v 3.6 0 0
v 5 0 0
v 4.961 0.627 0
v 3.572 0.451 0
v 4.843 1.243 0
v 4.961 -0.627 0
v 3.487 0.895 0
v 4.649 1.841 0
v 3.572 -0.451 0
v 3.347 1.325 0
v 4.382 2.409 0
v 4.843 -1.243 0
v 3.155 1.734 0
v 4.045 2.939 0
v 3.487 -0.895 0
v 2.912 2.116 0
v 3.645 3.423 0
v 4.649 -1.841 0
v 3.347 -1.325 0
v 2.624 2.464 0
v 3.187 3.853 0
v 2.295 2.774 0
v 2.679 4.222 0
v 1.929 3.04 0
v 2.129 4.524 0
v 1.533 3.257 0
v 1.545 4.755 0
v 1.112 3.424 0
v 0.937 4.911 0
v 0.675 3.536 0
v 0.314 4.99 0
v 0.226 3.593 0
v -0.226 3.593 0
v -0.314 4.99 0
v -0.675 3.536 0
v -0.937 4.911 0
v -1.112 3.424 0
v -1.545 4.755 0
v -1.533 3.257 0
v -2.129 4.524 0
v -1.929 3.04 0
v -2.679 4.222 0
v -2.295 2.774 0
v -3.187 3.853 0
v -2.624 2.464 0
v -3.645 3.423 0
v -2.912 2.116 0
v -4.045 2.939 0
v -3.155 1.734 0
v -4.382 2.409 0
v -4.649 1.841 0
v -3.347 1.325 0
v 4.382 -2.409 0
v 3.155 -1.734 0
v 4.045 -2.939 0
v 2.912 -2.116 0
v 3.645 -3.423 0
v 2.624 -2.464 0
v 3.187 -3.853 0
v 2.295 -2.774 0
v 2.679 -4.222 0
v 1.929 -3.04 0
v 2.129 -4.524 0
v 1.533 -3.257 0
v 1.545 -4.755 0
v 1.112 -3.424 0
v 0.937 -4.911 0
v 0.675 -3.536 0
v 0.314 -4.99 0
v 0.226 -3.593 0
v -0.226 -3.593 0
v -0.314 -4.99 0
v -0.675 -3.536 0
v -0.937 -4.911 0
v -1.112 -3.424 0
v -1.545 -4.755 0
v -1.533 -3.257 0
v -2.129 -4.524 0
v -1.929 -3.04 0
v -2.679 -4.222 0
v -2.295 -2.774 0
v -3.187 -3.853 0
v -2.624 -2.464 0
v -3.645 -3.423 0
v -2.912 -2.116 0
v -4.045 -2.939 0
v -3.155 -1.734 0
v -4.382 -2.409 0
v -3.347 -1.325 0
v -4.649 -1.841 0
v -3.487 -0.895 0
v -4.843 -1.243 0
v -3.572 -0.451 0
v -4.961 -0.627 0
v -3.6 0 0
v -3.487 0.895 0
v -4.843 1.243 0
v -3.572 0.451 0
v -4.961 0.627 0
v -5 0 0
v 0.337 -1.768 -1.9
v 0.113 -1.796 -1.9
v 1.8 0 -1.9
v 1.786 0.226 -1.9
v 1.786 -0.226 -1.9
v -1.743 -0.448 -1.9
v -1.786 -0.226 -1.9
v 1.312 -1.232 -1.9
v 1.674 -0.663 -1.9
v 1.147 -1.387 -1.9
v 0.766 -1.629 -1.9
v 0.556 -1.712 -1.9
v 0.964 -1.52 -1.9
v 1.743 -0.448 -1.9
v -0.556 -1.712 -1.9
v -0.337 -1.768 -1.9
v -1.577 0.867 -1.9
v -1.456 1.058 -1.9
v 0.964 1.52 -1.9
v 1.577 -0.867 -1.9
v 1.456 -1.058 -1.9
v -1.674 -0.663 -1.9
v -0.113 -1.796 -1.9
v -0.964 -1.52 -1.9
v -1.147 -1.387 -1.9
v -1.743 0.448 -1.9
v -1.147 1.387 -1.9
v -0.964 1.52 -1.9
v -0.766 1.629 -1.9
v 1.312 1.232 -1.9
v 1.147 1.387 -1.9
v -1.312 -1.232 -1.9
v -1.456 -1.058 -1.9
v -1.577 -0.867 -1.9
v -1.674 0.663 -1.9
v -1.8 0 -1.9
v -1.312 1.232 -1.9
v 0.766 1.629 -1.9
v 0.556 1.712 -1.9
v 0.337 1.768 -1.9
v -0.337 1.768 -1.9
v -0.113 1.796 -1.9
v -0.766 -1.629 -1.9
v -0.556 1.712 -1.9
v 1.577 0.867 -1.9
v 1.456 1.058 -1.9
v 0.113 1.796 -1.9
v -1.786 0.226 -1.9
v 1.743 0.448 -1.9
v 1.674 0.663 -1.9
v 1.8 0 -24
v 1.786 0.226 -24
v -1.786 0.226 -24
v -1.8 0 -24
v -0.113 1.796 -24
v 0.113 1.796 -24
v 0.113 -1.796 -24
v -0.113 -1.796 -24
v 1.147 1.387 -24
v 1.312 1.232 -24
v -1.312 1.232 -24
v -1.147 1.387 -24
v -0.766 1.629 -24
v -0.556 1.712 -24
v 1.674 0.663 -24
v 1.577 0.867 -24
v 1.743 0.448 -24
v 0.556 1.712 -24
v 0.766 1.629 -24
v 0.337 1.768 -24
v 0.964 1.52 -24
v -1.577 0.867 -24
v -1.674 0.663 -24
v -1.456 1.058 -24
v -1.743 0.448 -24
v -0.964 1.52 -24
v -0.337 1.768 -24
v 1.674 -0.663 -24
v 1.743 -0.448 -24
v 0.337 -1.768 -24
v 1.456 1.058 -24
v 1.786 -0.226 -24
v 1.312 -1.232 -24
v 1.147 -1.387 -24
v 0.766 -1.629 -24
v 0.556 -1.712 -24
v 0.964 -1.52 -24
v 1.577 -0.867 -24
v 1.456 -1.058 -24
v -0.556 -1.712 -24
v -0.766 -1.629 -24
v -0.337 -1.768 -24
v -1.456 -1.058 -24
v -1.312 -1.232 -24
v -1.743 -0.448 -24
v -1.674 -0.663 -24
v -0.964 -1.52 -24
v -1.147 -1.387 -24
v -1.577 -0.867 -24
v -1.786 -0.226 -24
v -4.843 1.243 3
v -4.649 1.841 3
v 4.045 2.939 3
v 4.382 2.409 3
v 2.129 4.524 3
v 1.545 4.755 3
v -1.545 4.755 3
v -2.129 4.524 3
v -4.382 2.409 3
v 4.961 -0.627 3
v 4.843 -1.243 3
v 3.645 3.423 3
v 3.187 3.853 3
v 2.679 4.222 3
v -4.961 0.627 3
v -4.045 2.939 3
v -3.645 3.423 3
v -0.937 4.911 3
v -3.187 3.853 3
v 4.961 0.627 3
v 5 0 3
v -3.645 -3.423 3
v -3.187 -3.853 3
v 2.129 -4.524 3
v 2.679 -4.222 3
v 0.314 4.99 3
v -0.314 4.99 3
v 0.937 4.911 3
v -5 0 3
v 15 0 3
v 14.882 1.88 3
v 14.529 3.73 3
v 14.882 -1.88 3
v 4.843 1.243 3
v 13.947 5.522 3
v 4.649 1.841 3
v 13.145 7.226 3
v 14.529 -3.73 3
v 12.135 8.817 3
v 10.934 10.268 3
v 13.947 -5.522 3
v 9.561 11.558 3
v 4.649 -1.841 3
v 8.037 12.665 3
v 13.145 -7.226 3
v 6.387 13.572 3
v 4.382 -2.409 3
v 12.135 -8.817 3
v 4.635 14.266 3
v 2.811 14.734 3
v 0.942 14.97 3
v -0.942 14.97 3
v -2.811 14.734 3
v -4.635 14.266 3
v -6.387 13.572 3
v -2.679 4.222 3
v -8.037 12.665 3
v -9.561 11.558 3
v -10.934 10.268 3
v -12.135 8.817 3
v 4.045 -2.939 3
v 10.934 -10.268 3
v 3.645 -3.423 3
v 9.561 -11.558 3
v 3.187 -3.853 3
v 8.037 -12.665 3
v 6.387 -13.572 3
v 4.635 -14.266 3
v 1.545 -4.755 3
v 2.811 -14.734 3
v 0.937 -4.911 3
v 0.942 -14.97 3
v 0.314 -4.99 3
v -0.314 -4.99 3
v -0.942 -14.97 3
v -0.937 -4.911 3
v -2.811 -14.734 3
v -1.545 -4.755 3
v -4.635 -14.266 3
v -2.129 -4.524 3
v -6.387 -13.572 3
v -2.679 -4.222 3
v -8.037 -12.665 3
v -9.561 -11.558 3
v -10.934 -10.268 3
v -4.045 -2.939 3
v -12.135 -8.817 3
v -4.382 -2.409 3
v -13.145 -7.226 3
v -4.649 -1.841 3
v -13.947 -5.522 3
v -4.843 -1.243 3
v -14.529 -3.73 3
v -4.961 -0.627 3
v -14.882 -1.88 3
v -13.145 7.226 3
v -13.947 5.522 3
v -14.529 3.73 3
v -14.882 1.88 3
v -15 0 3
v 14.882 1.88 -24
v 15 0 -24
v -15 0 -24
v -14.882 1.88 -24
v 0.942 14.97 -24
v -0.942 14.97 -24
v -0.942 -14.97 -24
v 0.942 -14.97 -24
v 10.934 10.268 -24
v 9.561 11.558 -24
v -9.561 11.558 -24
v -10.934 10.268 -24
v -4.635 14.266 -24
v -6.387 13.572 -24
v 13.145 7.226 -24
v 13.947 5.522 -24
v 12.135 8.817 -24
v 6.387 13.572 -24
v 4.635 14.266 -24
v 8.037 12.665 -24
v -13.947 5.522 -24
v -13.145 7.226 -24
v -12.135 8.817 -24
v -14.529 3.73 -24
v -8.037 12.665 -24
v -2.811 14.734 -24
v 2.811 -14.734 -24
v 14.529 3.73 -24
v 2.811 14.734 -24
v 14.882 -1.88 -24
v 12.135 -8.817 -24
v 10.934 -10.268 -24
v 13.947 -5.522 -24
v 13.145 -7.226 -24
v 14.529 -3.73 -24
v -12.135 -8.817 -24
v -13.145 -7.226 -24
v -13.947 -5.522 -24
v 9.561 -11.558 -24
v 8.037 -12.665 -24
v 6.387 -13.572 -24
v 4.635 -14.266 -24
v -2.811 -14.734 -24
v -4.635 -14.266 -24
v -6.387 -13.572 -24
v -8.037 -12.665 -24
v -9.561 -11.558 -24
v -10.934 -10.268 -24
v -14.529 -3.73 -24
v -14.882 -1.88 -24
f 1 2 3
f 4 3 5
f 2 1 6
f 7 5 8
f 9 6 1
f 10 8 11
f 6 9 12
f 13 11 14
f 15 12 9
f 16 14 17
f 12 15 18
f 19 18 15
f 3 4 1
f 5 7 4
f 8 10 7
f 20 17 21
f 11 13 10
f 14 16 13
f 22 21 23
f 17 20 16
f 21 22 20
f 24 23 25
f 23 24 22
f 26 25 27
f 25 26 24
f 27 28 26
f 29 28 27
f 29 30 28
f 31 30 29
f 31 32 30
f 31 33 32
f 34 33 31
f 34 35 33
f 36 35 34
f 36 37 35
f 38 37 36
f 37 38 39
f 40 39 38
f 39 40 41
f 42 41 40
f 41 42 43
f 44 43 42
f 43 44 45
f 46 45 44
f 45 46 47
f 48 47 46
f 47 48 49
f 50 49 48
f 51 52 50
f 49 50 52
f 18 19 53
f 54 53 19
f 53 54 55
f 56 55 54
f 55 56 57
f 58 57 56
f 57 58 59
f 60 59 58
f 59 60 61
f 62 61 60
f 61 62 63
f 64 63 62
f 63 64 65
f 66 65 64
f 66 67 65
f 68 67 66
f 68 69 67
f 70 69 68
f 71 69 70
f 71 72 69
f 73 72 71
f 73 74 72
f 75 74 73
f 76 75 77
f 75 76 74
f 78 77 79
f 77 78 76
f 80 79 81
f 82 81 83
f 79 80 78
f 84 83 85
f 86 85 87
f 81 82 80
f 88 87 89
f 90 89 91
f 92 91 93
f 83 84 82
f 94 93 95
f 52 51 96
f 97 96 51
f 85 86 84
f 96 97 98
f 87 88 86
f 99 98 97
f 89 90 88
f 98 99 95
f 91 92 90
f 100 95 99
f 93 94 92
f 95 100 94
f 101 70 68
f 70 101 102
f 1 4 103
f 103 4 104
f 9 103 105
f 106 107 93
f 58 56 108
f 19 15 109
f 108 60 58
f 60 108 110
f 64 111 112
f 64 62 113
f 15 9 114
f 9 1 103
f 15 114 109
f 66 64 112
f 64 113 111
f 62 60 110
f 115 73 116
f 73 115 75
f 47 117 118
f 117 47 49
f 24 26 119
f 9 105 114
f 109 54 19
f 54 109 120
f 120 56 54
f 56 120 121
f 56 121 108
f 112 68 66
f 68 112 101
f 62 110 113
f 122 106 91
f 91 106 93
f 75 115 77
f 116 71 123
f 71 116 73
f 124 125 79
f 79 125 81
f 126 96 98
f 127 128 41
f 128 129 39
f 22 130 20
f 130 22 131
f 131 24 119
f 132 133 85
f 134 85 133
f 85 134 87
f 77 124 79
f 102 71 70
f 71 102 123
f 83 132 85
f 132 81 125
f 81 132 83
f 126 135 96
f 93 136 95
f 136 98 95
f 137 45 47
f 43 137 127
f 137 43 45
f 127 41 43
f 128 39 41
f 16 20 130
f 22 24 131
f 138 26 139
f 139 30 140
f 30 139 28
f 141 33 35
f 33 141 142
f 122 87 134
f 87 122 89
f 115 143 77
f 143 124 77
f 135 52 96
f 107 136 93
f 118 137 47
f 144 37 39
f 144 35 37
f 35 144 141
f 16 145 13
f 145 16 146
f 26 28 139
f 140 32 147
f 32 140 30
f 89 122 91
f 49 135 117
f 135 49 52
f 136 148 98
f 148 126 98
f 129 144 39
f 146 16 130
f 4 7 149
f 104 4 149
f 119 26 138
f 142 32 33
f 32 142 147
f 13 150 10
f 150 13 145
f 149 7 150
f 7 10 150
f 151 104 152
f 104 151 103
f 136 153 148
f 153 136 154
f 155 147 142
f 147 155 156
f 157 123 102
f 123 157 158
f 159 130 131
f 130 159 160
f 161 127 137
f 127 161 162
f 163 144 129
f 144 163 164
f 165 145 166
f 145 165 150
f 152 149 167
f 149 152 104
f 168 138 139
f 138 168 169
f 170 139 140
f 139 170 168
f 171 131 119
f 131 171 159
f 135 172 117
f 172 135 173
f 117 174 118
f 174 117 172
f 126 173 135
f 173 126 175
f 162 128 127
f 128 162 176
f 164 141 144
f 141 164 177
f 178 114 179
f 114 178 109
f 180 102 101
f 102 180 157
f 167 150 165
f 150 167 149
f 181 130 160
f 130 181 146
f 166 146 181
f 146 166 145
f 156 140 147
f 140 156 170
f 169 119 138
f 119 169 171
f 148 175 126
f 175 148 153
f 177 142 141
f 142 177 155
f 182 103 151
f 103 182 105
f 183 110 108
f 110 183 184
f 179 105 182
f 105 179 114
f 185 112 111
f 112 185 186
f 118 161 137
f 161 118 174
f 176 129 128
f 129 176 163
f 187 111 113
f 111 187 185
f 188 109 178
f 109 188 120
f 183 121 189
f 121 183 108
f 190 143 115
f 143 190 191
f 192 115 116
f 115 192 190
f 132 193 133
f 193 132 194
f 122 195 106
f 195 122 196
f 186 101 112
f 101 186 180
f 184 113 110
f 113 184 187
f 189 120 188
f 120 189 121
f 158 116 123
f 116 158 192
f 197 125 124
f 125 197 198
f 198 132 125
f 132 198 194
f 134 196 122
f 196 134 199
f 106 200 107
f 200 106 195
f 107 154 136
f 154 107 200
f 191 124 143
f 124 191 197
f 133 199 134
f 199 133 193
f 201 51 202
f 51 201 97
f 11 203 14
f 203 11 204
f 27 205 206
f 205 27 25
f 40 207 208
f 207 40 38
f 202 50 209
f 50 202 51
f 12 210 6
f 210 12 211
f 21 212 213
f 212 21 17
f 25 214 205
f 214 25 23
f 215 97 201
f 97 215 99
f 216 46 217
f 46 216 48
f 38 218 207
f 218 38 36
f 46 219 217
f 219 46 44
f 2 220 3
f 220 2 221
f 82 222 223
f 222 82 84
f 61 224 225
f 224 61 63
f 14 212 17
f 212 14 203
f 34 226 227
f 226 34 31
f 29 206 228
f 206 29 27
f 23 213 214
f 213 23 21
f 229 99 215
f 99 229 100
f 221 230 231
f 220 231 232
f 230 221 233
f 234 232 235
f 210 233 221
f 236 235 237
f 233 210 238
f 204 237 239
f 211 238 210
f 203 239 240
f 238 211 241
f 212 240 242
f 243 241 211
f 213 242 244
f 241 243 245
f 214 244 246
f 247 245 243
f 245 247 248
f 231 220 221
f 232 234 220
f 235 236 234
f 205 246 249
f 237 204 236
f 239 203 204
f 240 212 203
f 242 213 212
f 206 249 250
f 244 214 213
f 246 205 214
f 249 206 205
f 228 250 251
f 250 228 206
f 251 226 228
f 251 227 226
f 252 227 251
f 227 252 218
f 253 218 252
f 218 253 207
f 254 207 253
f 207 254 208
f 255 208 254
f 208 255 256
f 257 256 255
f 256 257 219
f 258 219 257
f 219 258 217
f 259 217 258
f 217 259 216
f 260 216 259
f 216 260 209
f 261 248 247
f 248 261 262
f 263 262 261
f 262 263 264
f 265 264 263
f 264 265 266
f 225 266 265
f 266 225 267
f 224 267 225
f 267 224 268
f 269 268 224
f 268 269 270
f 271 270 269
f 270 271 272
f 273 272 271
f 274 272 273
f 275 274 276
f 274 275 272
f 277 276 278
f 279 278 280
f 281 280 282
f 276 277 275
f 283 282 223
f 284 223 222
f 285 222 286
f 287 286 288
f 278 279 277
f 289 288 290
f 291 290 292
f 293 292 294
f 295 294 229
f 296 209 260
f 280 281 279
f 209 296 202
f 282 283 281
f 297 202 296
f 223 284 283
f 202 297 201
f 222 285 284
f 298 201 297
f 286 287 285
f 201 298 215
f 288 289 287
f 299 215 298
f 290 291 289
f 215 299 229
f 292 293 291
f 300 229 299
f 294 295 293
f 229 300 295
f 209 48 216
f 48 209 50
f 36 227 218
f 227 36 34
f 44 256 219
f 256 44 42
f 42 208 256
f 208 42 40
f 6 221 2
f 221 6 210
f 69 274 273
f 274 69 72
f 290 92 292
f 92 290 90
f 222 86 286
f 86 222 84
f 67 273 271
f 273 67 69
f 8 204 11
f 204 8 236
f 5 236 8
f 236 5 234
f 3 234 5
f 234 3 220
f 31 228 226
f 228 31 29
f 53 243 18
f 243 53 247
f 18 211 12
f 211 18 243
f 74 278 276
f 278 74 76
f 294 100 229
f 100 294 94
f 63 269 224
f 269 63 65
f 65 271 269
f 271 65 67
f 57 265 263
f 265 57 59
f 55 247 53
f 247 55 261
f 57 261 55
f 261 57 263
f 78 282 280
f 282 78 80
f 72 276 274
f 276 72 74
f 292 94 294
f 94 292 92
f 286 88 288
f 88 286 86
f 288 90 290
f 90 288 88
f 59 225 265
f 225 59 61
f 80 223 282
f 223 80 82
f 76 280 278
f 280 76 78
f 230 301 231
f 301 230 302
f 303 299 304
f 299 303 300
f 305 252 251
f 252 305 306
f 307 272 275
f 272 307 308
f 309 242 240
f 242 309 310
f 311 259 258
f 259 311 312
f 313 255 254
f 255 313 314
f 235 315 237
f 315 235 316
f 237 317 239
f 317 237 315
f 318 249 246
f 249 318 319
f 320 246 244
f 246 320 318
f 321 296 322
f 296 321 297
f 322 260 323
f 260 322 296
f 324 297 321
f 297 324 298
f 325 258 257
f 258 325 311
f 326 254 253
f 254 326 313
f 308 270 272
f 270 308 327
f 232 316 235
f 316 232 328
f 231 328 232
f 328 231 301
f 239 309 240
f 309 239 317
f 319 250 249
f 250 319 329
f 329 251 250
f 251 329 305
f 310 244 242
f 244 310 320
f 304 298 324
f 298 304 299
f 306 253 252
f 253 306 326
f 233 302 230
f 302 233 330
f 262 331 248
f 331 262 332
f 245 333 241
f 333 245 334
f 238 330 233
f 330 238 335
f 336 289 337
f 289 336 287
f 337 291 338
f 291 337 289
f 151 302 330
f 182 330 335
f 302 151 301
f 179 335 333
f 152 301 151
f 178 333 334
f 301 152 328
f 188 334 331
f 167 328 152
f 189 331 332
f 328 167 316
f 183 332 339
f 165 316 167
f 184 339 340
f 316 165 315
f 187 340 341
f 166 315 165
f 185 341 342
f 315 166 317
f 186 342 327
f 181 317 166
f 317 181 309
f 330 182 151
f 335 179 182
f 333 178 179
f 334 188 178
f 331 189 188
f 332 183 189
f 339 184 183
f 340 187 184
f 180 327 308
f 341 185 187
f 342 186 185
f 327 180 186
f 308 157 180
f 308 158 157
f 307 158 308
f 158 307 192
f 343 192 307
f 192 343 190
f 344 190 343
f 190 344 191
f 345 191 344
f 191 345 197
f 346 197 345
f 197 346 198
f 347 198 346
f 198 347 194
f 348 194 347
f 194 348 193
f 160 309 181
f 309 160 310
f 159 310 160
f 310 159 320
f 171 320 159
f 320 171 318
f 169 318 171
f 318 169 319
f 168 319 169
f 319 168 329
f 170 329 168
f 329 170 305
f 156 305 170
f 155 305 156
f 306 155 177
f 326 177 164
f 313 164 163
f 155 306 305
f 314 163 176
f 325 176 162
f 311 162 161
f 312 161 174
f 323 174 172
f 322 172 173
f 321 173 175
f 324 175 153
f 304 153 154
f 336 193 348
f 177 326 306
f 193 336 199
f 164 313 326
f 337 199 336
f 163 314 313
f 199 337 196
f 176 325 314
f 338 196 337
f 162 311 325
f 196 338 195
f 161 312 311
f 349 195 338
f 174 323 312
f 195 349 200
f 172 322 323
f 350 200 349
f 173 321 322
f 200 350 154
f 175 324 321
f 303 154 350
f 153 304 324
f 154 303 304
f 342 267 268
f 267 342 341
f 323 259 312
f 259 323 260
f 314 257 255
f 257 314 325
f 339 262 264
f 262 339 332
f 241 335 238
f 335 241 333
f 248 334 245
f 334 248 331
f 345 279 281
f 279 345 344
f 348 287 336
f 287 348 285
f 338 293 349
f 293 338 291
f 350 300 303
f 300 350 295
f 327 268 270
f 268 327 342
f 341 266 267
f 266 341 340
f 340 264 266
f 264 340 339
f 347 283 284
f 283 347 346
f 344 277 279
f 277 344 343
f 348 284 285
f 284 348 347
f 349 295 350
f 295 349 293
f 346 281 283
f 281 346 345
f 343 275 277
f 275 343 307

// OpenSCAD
$fn = 50;


difference() {
	union() {
		translate(v = [0, 0, -24.0000000000]) {
			cylinder(h = 27, r = 15.0000000000);
		}
	}
	union() {
		translate(v = [0, 0, 0]) {
			rotate(a = [0, 0, 0]) {
				difference() {
					union() {
						translate(v = [0, 0, -27.0000000000]) {
							cylinder(h = 27, r = 1.5000000000);
						}
						translate(v = [0, 0, -1.9000000000]) {
							cylinder(h = 1.9000000000, r1 = 1.8000000000, r2 = 3.6000000000);
						}
						translate(v = [0, 0, -27.0000000000]) {
							cylinder(h = 27, r = 1.8000000000);
						}
						translate(v = [0, 0, -27.0000000000]) {
							cylinder(h = 27, r = 1.5000000000);
						}
					}
					union();
				}
			}
		}
		#cylinder(h = 3, r = 5.0000000000);
	}
}
